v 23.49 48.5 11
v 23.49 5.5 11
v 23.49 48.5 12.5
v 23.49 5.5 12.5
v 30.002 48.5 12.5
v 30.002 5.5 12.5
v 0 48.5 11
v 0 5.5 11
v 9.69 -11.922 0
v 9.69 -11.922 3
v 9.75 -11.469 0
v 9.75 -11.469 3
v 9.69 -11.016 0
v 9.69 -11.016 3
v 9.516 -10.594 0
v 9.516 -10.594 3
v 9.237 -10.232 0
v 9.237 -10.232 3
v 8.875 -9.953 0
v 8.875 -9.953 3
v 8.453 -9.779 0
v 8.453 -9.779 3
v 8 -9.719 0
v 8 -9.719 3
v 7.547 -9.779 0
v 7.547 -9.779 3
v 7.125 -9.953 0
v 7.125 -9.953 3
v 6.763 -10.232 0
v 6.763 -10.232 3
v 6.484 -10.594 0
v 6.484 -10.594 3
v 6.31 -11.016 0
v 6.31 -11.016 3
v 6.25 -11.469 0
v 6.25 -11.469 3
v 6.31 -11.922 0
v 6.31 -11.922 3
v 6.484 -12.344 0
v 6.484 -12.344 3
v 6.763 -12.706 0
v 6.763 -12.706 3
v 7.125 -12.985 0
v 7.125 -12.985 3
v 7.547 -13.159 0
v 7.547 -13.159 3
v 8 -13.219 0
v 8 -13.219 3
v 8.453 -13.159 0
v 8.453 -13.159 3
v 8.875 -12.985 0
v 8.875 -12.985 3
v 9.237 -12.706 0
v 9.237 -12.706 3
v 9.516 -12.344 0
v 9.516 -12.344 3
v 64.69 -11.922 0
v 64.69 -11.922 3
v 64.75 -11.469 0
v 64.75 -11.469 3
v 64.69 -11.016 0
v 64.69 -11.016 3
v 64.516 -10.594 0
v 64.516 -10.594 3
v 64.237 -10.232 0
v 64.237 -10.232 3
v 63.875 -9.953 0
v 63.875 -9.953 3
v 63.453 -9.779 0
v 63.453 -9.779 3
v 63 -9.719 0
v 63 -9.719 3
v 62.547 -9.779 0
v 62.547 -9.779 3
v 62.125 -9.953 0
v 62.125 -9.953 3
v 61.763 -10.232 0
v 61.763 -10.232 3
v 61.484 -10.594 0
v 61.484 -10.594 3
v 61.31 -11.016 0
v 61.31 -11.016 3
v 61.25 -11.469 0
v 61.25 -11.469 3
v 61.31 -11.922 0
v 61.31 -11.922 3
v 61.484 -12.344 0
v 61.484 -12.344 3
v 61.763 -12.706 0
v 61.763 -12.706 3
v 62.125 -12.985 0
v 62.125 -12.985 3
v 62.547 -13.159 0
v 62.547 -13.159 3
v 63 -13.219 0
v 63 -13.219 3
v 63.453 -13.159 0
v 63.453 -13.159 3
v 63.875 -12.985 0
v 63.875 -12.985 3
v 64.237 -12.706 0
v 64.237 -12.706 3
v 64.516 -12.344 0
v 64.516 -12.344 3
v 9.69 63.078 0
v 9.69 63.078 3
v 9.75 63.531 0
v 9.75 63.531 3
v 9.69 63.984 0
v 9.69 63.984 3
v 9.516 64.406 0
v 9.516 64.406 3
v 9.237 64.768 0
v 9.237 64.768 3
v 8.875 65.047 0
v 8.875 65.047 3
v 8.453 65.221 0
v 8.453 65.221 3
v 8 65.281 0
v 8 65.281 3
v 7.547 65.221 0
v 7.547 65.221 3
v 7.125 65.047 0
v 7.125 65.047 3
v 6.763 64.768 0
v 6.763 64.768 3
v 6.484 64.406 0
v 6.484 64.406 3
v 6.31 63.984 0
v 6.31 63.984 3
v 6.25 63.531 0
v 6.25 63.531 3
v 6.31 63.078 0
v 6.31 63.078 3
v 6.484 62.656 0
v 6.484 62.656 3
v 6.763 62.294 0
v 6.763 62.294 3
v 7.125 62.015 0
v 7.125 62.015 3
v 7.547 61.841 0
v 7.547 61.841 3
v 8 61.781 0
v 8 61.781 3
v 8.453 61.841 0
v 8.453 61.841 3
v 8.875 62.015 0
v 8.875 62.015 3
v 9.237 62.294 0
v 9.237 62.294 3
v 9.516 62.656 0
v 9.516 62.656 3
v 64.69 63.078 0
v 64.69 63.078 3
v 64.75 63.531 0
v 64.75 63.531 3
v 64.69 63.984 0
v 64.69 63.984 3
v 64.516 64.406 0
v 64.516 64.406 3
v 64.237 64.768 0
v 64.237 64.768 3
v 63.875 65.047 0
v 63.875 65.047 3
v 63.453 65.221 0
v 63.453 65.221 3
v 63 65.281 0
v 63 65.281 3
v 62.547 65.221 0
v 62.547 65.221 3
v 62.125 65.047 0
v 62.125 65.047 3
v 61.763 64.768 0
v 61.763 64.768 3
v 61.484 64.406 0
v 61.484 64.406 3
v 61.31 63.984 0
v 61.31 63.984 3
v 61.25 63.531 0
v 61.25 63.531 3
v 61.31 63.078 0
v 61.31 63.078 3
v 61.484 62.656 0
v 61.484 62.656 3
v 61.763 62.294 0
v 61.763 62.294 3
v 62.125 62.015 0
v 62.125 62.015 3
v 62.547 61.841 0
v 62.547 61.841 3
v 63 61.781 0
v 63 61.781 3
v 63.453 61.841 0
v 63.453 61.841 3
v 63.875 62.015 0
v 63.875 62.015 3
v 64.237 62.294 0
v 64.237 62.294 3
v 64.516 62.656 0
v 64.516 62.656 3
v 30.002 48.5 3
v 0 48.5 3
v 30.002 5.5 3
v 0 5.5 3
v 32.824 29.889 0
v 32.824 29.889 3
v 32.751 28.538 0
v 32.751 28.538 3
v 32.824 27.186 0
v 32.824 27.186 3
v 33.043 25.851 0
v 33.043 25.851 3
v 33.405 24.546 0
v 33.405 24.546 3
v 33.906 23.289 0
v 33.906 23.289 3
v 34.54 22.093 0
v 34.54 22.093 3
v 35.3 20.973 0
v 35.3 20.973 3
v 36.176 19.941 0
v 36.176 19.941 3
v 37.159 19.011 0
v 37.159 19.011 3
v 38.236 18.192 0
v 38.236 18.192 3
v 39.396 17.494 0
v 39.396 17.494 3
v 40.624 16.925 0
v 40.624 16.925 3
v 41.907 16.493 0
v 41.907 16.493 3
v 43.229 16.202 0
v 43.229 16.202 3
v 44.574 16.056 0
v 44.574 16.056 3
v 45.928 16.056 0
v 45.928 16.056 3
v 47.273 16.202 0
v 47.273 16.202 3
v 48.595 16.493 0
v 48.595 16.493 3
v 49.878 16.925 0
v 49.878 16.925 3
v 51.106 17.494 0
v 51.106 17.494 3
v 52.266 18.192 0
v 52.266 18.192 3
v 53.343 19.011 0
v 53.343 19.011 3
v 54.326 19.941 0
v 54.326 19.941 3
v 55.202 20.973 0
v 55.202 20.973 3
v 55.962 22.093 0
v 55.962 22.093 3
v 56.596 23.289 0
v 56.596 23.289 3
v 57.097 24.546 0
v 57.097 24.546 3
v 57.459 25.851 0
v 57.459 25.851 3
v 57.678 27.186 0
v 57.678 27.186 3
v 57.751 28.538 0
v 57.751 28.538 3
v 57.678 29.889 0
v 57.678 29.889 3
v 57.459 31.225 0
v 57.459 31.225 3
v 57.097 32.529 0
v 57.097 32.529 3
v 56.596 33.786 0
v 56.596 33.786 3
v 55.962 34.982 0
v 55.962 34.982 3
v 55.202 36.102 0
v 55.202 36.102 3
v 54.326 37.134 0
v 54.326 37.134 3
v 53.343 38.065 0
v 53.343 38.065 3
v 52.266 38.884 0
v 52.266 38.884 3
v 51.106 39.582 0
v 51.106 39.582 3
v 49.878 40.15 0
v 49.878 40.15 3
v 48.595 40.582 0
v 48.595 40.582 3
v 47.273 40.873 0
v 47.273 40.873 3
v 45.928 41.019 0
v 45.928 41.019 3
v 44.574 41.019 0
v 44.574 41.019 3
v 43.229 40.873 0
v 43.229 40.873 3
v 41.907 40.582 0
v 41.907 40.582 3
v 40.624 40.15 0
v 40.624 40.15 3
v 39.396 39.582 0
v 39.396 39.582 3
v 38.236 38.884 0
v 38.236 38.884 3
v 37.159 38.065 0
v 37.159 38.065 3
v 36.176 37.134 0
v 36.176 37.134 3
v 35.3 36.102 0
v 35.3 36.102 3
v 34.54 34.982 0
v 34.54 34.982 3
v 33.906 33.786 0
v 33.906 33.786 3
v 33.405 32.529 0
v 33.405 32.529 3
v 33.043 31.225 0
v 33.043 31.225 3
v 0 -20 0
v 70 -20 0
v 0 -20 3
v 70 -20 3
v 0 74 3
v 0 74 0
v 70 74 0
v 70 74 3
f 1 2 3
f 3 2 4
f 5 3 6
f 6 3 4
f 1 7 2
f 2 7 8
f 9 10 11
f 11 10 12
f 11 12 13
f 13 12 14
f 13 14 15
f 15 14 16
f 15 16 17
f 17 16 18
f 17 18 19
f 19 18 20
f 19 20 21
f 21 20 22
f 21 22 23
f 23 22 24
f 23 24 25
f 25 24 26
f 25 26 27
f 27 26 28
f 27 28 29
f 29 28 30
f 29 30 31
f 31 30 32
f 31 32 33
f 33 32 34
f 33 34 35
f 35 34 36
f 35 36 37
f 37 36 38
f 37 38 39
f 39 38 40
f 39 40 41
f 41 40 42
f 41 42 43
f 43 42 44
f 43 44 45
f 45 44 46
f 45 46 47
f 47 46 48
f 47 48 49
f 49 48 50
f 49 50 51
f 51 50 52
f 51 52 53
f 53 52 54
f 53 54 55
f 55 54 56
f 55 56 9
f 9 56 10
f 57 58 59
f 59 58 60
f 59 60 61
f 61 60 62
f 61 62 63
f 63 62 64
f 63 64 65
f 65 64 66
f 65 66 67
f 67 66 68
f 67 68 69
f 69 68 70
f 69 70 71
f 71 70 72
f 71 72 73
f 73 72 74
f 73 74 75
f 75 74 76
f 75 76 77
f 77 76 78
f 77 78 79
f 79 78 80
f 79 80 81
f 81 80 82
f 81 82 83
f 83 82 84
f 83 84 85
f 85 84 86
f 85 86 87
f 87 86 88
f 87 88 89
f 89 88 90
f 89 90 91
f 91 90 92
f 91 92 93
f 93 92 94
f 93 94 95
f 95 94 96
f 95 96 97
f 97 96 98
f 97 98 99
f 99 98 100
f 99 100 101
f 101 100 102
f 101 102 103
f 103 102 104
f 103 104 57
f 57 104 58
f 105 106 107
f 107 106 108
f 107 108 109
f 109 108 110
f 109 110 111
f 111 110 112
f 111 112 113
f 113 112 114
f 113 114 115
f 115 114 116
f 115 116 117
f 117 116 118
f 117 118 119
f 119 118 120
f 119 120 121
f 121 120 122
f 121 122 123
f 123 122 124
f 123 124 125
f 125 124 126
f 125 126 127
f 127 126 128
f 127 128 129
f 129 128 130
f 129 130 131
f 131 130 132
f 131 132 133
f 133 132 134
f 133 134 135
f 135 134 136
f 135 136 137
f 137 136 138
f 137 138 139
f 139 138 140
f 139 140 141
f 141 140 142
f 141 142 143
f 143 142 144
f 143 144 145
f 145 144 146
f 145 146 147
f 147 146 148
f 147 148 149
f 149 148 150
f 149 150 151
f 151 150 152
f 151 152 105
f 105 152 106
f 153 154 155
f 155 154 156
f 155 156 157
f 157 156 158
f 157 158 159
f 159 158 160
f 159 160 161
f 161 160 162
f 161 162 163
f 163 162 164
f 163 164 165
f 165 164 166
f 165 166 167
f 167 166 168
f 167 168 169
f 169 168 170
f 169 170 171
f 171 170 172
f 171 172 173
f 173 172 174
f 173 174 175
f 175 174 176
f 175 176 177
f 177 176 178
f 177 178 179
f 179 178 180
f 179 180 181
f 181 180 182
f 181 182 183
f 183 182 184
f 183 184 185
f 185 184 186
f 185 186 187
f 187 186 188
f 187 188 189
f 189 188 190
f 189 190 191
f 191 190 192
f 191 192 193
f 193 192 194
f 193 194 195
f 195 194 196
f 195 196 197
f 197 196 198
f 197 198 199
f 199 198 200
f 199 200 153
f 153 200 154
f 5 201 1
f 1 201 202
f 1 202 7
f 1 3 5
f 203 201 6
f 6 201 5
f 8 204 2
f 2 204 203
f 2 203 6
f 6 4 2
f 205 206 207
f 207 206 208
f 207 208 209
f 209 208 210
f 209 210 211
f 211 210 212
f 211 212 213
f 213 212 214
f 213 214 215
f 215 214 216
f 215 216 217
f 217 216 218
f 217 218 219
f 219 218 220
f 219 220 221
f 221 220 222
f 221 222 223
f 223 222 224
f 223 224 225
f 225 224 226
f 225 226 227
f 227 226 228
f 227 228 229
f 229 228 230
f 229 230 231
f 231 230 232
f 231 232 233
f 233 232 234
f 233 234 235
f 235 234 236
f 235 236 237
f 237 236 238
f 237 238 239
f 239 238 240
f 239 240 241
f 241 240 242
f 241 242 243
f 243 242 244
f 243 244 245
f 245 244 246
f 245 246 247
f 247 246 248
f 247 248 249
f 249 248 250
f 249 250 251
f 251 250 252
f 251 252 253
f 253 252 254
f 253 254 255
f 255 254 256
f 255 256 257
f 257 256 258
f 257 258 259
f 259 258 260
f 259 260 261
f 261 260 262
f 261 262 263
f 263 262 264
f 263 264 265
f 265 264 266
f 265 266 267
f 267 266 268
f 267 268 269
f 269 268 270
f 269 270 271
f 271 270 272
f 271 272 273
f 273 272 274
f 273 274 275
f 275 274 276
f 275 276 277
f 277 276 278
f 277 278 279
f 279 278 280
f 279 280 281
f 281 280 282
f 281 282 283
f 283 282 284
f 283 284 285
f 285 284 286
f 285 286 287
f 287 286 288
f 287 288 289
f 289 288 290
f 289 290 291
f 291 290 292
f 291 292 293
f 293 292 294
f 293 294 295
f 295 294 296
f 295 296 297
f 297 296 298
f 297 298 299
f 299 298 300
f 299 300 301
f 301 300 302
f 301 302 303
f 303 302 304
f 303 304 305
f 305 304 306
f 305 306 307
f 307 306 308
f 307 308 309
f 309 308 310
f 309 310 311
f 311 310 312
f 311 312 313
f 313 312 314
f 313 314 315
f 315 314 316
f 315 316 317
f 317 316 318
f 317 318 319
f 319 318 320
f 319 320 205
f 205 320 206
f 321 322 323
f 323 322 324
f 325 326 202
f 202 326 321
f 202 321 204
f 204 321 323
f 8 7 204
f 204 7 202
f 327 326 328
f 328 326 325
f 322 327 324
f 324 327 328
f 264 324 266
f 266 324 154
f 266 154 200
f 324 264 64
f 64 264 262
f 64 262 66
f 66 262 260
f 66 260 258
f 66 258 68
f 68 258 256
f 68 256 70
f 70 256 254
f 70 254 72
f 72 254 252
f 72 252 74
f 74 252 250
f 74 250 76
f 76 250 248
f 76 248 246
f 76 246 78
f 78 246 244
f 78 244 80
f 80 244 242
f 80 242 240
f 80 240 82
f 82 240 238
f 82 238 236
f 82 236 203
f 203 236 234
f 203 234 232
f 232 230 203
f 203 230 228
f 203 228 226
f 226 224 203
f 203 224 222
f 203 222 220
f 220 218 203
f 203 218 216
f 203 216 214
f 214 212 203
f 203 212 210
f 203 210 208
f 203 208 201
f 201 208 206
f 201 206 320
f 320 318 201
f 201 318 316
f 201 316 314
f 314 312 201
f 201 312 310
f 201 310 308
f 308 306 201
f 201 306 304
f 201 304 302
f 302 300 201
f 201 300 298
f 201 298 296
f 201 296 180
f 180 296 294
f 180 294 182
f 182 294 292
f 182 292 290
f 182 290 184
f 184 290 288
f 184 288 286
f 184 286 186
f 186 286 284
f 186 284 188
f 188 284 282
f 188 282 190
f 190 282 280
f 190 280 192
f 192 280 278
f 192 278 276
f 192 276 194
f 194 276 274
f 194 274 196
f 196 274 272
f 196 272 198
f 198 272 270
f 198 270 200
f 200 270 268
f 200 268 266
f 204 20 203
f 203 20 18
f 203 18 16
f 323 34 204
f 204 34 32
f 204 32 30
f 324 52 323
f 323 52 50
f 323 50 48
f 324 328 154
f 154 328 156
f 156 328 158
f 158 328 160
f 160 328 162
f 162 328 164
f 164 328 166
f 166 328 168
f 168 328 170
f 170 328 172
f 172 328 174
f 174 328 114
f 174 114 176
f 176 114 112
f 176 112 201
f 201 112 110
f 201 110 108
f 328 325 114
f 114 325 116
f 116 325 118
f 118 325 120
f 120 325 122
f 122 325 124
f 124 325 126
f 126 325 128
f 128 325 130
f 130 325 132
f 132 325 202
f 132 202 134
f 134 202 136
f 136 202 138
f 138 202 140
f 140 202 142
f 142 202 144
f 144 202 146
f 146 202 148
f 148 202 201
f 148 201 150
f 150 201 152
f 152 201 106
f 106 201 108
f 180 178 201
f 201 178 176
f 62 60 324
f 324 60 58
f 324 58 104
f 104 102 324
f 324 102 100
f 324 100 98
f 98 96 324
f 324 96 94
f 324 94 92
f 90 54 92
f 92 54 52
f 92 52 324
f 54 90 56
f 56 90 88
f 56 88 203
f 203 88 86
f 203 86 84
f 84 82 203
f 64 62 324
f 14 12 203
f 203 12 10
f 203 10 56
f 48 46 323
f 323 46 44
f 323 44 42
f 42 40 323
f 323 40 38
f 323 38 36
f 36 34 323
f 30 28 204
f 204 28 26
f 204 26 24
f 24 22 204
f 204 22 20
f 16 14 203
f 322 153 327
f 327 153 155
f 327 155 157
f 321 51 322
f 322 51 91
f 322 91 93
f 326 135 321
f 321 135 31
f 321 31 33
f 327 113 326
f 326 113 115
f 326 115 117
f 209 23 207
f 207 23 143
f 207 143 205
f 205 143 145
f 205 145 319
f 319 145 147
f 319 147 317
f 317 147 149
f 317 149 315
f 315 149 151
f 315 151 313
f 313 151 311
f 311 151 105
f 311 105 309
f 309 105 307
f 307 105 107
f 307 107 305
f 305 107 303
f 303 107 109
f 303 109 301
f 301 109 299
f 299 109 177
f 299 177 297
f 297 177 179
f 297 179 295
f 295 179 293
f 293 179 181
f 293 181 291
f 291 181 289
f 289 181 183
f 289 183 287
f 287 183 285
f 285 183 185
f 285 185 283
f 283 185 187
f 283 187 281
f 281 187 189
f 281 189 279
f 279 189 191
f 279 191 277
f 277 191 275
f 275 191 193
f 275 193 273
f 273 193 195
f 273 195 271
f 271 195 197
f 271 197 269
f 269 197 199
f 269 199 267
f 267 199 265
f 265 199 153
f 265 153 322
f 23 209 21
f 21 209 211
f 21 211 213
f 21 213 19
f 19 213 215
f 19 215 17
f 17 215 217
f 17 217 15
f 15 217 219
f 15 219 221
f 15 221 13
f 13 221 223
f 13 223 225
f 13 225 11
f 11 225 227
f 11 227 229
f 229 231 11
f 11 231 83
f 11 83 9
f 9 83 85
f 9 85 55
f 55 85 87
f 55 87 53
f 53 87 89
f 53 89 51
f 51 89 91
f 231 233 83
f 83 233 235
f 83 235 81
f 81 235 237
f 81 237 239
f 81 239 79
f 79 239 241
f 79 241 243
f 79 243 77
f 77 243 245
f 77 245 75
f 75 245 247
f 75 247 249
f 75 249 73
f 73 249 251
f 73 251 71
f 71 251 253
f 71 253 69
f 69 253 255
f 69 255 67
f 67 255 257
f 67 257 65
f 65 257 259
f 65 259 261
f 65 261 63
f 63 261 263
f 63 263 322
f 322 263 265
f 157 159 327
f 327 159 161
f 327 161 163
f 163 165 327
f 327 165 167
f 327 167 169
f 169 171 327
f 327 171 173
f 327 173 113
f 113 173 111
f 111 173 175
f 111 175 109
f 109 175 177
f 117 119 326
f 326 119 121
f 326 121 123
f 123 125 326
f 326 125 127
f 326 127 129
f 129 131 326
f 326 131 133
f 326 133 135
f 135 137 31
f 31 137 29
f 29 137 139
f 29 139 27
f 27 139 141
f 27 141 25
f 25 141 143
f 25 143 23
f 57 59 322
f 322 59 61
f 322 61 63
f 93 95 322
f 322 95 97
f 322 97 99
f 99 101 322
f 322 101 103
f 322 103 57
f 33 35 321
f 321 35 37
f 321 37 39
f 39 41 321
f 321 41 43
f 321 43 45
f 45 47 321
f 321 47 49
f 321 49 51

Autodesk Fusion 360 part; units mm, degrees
sketch "Sketch1" plane through (0, 0, 0) normal (0, 0, 1) x (1, 0, 0)
  line L0 (0, 0) -> (70, 0)
  line L1 (70, 0) -> (70, 54)
  line L2 (70, 54) -> (0, 54)
  line L3 (0, 54) -> (0, 0)
  line L4 (0, 0) -> (70, 0)
  line L5 (70, 0) -> (70, -20)
  line L6 (70, -20) -> (0, -20)
  line L7 (0, -20) -> (0, 0)
  line L8 (0, 54) -> (70, 54)
  line L9 (70, 54) -> (70, 74)
  line L10 (70, 74) -> (0, 74)
  line L11 (0, 74) -> (0, 54)
  dimension "d1" = 54
  dimension "d2" = 70
  dimension "d3" = 20
  dimension "d4" = 20
extrude "Extrude1" add sketch "Sketch1" along normal blind 3
hole "Hole1" at (45.2511, 28.5377, 3) direction (0, 0, -1) diameter 25 depth 5 tip angle 180
sketch "Sketch3" plane through (0, 0, 3) normal (0, 0, 1) x (-1, 0, 0)
  circle A0 centre (-45.2511, -28.5377) radius 12.5
  line L0 (0, -48.5) -> (-30.0019, -48.5)
  line L1 (-30.0019, -48.5) -> (-30.0019, -5.5)
  line L2 (-30.0019, -5.5) -> (0, -5.5)
  line L3 (0, -5.5) -> (0, -48.5)
  line L4 (-70, 20) -> (-70, -74)
  line L5 (-70, -74) -> (0, -74)
  line L6 (0, -74) -> (0, 20)
  line L7 (0, 20) -> (-70, 20)
  dimension "d20" = 25.5
  dimension "d21" = 25.5
extrude "Extrude3" add sketch "Sketch3" along normal blind 8 contours L0 L1 L2 L3 L6
sketch "Sketch4" plane through (0, 0, 3) normal (0, 0, 1) x (-1, 0, 0)
  line L0 (0, -48.5) -> (-30.0019, -48.5)
  line L1 (-30.0019, -48.5) -> (-30.0019, -5.5)
  line L2 (-30.0019, -5.5) -> (0, -5.5)
  line L3 (0, -5.5) -> (0, 20)
  line L4 (0, 20) -> (-70, 20)
  line L5 (-70, 20) -> (-70, -74)
  line L6 (-70, -74) -> (0, -74)
  line L7 (0, -74) -> (0, -48.5)
  circle A0 centre (-45.2511, -28.5377) radius 12.5
  circle A1 centre (-8, -63.531) radius 1.75
  circle A2 centre (-63, -63.531) radius 1.75
  circle A3 centre (-8, 11.469) radius 1.75
  circle A4 centre (-63, 11.469) radius 1.75
  dimension "d22" = 3.5
  dimension "d25" = -55
  dimension "d26" = 75
  dimension "d27" = 10.469
  dimension "d30" = 8
extrude "Extrude4" cut sketch "Sketch4" against normal blind 3 contours A1 | A2 | A3 | A4
sketch "Sketch5" plane through (0, 0, 11) normal (0, 0, 1) x (-1, 0, 0)
  line L0 (0, -5.5) -> (-30.0019, -5.5)
  line L1 (-30.0019, -5.5) -> (-30.0019, -48.5)
  line L2 (-30.0019, -48.5) -> (0, -48.5)
  line L3 (0, -48.5) -> (0, -5.5)
  line L4 (-30.0019, -5.5) -> (-23.4899, -5.5)
  line L5 (-23.4899, -5.5) -> (-23.4899, -48.5)
  line L6 (-23.4899, -48.5) -> (-30.0019, -48.5)
  line L7 (-30.0019, -48.5) -> (-30.0019, -5.5)
extrude "Extrude5" add sketch "Sketch5" along normal blind 1.5 contours L0 L1 L2 L4 L5 L6 L7
